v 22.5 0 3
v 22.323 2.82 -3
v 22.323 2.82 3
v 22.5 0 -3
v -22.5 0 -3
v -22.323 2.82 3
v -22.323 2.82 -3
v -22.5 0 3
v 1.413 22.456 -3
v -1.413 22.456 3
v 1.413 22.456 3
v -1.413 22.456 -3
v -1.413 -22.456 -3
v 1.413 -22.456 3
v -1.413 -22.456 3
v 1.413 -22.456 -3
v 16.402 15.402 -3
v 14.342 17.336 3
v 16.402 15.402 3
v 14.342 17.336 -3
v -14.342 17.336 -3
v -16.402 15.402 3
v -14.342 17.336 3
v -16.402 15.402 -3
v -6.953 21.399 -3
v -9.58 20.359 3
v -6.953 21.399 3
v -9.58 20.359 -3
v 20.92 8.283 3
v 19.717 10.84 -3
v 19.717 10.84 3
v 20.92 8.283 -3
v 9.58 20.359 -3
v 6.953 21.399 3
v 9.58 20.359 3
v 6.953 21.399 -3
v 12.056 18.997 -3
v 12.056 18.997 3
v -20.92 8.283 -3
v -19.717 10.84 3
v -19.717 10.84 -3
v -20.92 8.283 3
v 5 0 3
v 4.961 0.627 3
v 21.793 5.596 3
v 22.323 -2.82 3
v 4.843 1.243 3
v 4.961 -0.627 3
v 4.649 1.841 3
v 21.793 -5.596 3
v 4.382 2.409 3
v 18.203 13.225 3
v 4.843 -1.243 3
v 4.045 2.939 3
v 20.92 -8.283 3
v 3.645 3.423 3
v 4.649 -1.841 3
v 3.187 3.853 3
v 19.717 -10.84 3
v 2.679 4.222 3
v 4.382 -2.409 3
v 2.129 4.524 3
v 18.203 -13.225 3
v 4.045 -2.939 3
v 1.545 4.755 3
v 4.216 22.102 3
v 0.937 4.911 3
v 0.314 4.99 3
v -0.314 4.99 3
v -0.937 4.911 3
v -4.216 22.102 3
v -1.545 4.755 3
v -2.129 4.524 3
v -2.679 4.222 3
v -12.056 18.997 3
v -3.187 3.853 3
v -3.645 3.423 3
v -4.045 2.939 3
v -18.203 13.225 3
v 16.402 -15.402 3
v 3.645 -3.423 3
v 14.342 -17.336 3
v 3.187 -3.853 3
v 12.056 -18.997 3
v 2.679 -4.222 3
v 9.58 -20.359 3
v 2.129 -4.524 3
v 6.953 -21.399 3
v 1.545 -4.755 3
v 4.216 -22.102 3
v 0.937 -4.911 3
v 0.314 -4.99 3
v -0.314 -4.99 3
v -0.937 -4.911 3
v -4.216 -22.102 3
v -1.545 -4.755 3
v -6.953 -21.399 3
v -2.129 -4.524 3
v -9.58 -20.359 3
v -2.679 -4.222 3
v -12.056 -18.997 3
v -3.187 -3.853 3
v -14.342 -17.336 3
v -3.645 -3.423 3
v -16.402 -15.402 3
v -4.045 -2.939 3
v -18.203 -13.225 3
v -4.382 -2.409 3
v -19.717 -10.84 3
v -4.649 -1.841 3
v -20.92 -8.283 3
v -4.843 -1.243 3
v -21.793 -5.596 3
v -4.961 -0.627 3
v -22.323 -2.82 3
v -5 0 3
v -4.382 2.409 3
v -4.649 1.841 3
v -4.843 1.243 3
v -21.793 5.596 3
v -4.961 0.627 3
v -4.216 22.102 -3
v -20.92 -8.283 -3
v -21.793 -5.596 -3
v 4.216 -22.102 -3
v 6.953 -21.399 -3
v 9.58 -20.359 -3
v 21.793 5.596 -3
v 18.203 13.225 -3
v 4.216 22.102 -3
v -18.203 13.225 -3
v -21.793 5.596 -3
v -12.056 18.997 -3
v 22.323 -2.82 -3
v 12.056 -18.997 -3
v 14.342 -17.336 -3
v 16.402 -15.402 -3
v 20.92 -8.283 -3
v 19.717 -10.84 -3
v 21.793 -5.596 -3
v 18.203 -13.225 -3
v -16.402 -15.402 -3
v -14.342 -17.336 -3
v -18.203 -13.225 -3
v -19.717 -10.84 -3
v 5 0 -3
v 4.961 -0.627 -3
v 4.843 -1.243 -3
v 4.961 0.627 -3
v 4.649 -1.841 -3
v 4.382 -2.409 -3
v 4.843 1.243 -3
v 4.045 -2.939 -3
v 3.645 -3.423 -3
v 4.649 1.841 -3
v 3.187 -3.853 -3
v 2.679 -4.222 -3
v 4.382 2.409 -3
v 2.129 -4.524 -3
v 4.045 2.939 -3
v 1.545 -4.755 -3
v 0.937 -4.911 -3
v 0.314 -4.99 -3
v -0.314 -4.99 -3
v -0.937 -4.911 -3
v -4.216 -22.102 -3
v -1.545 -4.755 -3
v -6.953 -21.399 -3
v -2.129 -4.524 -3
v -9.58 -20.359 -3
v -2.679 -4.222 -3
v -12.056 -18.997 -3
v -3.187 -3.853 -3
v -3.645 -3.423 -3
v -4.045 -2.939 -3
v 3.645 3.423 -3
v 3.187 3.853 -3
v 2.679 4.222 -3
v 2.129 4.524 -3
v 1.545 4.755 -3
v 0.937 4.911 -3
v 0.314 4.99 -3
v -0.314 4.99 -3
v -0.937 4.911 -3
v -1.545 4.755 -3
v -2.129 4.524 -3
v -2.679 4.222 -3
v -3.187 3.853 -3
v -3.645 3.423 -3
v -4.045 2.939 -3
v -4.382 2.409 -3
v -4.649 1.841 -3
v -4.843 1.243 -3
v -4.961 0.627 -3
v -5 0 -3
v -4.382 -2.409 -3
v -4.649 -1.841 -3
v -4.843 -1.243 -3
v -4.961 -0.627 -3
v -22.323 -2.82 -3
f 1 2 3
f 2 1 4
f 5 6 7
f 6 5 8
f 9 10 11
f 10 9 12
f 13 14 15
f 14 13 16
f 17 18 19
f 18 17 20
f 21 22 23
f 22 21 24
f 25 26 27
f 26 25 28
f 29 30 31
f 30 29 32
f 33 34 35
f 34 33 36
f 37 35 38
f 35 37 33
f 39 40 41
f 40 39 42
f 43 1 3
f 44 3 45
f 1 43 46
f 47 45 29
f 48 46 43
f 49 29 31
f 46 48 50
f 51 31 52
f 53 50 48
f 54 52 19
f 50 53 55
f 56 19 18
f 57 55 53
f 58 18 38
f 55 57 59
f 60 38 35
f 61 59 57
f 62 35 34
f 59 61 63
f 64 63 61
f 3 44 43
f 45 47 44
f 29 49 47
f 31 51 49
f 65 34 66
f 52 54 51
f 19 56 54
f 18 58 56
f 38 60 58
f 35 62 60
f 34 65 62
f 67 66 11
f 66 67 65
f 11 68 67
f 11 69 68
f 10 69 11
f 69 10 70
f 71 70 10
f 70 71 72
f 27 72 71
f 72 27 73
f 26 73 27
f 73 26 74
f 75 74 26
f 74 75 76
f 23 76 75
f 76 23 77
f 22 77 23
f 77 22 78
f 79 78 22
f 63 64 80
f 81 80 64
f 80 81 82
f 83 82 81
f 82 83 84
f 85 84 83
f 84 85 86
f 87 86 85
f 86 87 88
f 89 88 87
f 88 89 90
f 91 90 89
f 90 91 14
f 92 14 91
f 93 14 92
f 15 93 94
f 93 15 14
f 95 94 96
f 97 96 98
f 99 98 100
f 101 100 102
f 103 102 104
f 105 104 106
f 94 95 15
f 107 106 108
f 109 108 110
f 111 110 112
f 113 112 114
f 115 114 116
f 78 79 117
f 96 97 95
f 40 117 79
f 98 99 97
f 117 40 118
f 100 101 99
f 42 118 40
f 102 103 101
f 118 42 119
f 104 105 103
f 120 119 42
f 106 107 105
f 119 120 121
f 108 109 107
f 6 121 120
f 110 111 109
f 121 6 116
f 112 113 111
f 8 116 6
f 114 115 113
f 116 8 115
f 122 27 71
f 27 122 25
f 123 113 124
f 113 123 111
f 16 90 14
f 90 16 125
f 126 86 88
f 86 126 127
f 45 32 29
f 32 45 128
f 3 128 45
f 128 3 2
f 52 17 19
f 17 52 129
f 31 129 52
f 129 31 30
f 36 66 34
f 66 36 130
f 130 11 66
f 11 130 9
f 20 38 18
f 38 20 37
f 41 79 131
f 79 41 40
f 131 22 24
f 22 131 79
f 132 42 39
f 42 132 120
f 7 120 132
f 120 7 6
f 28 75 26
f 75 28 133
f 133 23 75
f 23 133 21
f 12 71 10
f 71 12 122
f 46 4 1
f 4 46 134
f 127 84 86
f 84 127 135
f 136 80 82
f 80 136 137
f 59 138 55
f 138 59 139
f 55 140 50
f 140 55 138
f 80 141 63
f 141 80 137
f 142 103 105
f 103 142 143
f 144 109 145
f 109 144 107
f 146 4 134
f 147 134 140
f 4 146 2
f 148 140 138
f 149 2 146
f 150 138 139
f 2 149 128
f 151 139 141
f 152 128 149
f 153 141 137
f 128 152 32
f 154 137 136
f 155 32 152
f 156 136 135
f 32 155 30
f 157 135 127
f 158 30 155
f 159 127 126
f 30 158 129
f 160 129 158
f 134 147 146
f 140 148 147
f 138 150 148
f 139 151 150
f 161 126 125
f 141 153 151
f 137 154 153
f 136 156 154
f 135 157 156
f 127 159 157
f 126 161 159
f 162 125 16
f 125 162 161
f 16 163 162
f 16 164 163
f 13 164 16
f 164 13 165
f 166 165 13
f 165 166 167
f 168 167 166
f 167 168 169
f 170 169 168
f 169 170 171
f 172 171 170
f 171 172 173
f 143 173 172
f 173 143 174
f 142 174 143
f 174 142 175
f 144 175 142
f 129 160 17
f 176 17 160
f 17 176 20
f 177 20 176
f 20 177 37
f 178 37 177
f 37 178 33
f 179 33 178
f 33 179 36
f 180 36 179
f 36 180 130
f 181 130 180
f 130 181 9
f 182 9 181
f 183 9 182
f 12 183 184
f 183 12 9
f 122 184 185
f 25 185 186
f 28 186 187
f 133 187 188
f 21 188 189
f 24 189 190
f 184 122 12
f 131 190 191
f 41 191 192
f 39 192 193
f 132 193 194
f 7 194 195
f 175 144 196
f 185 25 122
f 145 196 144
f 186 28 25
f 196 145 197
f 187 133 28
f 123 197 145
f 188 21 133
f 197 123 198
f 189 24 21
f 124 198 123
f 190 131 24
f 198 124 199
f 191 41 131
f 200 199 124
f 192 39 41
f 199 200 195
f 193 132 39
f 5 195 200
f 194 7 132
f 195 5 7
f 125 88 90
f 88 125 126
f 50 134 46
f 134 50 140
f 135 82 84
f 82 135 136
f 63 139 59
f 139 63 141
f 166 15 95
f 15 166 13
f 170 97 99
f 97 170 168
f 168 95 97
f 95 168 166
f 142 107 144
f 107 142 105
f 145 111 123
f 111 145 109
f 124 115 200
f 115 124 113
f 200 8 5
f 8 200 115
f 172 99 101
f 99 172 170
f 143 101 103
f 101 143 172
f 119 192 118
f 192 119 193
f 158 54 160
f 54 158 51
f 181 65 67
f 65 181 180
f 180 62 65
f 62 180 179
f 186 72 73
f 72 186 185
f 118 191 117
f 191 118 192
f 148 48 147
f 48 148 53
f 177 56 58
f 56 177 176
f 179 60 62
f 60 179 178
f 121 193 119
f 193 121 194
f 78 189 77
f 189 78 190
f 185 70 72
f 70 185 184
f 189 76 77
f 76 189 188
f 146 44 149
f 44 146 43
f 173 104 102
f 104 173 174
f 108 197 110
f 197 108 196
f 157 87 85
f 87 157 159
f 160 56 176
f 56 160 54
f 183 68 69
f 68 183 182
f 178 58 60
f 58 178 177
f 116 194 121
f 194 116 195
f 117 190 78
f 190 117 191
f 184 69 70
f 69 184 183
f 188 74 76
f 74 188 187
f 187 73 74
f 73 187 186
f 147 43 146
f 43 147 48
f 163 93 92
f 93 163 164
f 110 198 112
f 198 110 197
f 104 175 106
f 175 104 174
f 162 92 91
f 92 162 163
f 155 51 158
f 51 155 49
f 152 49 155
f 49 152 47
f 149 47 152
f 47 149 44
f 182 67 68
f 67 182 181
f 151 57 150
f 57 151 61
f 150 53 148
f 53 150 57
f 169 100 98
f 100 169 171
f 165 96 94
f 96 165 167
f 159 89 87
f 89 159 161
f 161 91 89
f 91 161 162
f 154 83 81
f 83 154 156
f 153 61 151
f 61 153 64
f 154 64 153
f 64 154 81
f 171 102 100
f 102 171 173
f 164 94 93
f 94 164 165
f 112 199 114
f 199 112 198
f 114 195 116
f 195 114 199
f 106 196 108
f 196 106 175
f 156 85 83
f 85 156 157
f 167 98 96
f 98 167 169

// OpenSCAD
$fn = 50;


difference() {
	union() {
		translate(v = [0, 0, -3.0000000000]) {
			cylinder(h = 6, r = 22.5000000000);
		}
	}
	union() {
		translate(v = [0, 0, -100.0000000000]) {
			cylinder(h = 200, r = 5);
		}
	}
}
